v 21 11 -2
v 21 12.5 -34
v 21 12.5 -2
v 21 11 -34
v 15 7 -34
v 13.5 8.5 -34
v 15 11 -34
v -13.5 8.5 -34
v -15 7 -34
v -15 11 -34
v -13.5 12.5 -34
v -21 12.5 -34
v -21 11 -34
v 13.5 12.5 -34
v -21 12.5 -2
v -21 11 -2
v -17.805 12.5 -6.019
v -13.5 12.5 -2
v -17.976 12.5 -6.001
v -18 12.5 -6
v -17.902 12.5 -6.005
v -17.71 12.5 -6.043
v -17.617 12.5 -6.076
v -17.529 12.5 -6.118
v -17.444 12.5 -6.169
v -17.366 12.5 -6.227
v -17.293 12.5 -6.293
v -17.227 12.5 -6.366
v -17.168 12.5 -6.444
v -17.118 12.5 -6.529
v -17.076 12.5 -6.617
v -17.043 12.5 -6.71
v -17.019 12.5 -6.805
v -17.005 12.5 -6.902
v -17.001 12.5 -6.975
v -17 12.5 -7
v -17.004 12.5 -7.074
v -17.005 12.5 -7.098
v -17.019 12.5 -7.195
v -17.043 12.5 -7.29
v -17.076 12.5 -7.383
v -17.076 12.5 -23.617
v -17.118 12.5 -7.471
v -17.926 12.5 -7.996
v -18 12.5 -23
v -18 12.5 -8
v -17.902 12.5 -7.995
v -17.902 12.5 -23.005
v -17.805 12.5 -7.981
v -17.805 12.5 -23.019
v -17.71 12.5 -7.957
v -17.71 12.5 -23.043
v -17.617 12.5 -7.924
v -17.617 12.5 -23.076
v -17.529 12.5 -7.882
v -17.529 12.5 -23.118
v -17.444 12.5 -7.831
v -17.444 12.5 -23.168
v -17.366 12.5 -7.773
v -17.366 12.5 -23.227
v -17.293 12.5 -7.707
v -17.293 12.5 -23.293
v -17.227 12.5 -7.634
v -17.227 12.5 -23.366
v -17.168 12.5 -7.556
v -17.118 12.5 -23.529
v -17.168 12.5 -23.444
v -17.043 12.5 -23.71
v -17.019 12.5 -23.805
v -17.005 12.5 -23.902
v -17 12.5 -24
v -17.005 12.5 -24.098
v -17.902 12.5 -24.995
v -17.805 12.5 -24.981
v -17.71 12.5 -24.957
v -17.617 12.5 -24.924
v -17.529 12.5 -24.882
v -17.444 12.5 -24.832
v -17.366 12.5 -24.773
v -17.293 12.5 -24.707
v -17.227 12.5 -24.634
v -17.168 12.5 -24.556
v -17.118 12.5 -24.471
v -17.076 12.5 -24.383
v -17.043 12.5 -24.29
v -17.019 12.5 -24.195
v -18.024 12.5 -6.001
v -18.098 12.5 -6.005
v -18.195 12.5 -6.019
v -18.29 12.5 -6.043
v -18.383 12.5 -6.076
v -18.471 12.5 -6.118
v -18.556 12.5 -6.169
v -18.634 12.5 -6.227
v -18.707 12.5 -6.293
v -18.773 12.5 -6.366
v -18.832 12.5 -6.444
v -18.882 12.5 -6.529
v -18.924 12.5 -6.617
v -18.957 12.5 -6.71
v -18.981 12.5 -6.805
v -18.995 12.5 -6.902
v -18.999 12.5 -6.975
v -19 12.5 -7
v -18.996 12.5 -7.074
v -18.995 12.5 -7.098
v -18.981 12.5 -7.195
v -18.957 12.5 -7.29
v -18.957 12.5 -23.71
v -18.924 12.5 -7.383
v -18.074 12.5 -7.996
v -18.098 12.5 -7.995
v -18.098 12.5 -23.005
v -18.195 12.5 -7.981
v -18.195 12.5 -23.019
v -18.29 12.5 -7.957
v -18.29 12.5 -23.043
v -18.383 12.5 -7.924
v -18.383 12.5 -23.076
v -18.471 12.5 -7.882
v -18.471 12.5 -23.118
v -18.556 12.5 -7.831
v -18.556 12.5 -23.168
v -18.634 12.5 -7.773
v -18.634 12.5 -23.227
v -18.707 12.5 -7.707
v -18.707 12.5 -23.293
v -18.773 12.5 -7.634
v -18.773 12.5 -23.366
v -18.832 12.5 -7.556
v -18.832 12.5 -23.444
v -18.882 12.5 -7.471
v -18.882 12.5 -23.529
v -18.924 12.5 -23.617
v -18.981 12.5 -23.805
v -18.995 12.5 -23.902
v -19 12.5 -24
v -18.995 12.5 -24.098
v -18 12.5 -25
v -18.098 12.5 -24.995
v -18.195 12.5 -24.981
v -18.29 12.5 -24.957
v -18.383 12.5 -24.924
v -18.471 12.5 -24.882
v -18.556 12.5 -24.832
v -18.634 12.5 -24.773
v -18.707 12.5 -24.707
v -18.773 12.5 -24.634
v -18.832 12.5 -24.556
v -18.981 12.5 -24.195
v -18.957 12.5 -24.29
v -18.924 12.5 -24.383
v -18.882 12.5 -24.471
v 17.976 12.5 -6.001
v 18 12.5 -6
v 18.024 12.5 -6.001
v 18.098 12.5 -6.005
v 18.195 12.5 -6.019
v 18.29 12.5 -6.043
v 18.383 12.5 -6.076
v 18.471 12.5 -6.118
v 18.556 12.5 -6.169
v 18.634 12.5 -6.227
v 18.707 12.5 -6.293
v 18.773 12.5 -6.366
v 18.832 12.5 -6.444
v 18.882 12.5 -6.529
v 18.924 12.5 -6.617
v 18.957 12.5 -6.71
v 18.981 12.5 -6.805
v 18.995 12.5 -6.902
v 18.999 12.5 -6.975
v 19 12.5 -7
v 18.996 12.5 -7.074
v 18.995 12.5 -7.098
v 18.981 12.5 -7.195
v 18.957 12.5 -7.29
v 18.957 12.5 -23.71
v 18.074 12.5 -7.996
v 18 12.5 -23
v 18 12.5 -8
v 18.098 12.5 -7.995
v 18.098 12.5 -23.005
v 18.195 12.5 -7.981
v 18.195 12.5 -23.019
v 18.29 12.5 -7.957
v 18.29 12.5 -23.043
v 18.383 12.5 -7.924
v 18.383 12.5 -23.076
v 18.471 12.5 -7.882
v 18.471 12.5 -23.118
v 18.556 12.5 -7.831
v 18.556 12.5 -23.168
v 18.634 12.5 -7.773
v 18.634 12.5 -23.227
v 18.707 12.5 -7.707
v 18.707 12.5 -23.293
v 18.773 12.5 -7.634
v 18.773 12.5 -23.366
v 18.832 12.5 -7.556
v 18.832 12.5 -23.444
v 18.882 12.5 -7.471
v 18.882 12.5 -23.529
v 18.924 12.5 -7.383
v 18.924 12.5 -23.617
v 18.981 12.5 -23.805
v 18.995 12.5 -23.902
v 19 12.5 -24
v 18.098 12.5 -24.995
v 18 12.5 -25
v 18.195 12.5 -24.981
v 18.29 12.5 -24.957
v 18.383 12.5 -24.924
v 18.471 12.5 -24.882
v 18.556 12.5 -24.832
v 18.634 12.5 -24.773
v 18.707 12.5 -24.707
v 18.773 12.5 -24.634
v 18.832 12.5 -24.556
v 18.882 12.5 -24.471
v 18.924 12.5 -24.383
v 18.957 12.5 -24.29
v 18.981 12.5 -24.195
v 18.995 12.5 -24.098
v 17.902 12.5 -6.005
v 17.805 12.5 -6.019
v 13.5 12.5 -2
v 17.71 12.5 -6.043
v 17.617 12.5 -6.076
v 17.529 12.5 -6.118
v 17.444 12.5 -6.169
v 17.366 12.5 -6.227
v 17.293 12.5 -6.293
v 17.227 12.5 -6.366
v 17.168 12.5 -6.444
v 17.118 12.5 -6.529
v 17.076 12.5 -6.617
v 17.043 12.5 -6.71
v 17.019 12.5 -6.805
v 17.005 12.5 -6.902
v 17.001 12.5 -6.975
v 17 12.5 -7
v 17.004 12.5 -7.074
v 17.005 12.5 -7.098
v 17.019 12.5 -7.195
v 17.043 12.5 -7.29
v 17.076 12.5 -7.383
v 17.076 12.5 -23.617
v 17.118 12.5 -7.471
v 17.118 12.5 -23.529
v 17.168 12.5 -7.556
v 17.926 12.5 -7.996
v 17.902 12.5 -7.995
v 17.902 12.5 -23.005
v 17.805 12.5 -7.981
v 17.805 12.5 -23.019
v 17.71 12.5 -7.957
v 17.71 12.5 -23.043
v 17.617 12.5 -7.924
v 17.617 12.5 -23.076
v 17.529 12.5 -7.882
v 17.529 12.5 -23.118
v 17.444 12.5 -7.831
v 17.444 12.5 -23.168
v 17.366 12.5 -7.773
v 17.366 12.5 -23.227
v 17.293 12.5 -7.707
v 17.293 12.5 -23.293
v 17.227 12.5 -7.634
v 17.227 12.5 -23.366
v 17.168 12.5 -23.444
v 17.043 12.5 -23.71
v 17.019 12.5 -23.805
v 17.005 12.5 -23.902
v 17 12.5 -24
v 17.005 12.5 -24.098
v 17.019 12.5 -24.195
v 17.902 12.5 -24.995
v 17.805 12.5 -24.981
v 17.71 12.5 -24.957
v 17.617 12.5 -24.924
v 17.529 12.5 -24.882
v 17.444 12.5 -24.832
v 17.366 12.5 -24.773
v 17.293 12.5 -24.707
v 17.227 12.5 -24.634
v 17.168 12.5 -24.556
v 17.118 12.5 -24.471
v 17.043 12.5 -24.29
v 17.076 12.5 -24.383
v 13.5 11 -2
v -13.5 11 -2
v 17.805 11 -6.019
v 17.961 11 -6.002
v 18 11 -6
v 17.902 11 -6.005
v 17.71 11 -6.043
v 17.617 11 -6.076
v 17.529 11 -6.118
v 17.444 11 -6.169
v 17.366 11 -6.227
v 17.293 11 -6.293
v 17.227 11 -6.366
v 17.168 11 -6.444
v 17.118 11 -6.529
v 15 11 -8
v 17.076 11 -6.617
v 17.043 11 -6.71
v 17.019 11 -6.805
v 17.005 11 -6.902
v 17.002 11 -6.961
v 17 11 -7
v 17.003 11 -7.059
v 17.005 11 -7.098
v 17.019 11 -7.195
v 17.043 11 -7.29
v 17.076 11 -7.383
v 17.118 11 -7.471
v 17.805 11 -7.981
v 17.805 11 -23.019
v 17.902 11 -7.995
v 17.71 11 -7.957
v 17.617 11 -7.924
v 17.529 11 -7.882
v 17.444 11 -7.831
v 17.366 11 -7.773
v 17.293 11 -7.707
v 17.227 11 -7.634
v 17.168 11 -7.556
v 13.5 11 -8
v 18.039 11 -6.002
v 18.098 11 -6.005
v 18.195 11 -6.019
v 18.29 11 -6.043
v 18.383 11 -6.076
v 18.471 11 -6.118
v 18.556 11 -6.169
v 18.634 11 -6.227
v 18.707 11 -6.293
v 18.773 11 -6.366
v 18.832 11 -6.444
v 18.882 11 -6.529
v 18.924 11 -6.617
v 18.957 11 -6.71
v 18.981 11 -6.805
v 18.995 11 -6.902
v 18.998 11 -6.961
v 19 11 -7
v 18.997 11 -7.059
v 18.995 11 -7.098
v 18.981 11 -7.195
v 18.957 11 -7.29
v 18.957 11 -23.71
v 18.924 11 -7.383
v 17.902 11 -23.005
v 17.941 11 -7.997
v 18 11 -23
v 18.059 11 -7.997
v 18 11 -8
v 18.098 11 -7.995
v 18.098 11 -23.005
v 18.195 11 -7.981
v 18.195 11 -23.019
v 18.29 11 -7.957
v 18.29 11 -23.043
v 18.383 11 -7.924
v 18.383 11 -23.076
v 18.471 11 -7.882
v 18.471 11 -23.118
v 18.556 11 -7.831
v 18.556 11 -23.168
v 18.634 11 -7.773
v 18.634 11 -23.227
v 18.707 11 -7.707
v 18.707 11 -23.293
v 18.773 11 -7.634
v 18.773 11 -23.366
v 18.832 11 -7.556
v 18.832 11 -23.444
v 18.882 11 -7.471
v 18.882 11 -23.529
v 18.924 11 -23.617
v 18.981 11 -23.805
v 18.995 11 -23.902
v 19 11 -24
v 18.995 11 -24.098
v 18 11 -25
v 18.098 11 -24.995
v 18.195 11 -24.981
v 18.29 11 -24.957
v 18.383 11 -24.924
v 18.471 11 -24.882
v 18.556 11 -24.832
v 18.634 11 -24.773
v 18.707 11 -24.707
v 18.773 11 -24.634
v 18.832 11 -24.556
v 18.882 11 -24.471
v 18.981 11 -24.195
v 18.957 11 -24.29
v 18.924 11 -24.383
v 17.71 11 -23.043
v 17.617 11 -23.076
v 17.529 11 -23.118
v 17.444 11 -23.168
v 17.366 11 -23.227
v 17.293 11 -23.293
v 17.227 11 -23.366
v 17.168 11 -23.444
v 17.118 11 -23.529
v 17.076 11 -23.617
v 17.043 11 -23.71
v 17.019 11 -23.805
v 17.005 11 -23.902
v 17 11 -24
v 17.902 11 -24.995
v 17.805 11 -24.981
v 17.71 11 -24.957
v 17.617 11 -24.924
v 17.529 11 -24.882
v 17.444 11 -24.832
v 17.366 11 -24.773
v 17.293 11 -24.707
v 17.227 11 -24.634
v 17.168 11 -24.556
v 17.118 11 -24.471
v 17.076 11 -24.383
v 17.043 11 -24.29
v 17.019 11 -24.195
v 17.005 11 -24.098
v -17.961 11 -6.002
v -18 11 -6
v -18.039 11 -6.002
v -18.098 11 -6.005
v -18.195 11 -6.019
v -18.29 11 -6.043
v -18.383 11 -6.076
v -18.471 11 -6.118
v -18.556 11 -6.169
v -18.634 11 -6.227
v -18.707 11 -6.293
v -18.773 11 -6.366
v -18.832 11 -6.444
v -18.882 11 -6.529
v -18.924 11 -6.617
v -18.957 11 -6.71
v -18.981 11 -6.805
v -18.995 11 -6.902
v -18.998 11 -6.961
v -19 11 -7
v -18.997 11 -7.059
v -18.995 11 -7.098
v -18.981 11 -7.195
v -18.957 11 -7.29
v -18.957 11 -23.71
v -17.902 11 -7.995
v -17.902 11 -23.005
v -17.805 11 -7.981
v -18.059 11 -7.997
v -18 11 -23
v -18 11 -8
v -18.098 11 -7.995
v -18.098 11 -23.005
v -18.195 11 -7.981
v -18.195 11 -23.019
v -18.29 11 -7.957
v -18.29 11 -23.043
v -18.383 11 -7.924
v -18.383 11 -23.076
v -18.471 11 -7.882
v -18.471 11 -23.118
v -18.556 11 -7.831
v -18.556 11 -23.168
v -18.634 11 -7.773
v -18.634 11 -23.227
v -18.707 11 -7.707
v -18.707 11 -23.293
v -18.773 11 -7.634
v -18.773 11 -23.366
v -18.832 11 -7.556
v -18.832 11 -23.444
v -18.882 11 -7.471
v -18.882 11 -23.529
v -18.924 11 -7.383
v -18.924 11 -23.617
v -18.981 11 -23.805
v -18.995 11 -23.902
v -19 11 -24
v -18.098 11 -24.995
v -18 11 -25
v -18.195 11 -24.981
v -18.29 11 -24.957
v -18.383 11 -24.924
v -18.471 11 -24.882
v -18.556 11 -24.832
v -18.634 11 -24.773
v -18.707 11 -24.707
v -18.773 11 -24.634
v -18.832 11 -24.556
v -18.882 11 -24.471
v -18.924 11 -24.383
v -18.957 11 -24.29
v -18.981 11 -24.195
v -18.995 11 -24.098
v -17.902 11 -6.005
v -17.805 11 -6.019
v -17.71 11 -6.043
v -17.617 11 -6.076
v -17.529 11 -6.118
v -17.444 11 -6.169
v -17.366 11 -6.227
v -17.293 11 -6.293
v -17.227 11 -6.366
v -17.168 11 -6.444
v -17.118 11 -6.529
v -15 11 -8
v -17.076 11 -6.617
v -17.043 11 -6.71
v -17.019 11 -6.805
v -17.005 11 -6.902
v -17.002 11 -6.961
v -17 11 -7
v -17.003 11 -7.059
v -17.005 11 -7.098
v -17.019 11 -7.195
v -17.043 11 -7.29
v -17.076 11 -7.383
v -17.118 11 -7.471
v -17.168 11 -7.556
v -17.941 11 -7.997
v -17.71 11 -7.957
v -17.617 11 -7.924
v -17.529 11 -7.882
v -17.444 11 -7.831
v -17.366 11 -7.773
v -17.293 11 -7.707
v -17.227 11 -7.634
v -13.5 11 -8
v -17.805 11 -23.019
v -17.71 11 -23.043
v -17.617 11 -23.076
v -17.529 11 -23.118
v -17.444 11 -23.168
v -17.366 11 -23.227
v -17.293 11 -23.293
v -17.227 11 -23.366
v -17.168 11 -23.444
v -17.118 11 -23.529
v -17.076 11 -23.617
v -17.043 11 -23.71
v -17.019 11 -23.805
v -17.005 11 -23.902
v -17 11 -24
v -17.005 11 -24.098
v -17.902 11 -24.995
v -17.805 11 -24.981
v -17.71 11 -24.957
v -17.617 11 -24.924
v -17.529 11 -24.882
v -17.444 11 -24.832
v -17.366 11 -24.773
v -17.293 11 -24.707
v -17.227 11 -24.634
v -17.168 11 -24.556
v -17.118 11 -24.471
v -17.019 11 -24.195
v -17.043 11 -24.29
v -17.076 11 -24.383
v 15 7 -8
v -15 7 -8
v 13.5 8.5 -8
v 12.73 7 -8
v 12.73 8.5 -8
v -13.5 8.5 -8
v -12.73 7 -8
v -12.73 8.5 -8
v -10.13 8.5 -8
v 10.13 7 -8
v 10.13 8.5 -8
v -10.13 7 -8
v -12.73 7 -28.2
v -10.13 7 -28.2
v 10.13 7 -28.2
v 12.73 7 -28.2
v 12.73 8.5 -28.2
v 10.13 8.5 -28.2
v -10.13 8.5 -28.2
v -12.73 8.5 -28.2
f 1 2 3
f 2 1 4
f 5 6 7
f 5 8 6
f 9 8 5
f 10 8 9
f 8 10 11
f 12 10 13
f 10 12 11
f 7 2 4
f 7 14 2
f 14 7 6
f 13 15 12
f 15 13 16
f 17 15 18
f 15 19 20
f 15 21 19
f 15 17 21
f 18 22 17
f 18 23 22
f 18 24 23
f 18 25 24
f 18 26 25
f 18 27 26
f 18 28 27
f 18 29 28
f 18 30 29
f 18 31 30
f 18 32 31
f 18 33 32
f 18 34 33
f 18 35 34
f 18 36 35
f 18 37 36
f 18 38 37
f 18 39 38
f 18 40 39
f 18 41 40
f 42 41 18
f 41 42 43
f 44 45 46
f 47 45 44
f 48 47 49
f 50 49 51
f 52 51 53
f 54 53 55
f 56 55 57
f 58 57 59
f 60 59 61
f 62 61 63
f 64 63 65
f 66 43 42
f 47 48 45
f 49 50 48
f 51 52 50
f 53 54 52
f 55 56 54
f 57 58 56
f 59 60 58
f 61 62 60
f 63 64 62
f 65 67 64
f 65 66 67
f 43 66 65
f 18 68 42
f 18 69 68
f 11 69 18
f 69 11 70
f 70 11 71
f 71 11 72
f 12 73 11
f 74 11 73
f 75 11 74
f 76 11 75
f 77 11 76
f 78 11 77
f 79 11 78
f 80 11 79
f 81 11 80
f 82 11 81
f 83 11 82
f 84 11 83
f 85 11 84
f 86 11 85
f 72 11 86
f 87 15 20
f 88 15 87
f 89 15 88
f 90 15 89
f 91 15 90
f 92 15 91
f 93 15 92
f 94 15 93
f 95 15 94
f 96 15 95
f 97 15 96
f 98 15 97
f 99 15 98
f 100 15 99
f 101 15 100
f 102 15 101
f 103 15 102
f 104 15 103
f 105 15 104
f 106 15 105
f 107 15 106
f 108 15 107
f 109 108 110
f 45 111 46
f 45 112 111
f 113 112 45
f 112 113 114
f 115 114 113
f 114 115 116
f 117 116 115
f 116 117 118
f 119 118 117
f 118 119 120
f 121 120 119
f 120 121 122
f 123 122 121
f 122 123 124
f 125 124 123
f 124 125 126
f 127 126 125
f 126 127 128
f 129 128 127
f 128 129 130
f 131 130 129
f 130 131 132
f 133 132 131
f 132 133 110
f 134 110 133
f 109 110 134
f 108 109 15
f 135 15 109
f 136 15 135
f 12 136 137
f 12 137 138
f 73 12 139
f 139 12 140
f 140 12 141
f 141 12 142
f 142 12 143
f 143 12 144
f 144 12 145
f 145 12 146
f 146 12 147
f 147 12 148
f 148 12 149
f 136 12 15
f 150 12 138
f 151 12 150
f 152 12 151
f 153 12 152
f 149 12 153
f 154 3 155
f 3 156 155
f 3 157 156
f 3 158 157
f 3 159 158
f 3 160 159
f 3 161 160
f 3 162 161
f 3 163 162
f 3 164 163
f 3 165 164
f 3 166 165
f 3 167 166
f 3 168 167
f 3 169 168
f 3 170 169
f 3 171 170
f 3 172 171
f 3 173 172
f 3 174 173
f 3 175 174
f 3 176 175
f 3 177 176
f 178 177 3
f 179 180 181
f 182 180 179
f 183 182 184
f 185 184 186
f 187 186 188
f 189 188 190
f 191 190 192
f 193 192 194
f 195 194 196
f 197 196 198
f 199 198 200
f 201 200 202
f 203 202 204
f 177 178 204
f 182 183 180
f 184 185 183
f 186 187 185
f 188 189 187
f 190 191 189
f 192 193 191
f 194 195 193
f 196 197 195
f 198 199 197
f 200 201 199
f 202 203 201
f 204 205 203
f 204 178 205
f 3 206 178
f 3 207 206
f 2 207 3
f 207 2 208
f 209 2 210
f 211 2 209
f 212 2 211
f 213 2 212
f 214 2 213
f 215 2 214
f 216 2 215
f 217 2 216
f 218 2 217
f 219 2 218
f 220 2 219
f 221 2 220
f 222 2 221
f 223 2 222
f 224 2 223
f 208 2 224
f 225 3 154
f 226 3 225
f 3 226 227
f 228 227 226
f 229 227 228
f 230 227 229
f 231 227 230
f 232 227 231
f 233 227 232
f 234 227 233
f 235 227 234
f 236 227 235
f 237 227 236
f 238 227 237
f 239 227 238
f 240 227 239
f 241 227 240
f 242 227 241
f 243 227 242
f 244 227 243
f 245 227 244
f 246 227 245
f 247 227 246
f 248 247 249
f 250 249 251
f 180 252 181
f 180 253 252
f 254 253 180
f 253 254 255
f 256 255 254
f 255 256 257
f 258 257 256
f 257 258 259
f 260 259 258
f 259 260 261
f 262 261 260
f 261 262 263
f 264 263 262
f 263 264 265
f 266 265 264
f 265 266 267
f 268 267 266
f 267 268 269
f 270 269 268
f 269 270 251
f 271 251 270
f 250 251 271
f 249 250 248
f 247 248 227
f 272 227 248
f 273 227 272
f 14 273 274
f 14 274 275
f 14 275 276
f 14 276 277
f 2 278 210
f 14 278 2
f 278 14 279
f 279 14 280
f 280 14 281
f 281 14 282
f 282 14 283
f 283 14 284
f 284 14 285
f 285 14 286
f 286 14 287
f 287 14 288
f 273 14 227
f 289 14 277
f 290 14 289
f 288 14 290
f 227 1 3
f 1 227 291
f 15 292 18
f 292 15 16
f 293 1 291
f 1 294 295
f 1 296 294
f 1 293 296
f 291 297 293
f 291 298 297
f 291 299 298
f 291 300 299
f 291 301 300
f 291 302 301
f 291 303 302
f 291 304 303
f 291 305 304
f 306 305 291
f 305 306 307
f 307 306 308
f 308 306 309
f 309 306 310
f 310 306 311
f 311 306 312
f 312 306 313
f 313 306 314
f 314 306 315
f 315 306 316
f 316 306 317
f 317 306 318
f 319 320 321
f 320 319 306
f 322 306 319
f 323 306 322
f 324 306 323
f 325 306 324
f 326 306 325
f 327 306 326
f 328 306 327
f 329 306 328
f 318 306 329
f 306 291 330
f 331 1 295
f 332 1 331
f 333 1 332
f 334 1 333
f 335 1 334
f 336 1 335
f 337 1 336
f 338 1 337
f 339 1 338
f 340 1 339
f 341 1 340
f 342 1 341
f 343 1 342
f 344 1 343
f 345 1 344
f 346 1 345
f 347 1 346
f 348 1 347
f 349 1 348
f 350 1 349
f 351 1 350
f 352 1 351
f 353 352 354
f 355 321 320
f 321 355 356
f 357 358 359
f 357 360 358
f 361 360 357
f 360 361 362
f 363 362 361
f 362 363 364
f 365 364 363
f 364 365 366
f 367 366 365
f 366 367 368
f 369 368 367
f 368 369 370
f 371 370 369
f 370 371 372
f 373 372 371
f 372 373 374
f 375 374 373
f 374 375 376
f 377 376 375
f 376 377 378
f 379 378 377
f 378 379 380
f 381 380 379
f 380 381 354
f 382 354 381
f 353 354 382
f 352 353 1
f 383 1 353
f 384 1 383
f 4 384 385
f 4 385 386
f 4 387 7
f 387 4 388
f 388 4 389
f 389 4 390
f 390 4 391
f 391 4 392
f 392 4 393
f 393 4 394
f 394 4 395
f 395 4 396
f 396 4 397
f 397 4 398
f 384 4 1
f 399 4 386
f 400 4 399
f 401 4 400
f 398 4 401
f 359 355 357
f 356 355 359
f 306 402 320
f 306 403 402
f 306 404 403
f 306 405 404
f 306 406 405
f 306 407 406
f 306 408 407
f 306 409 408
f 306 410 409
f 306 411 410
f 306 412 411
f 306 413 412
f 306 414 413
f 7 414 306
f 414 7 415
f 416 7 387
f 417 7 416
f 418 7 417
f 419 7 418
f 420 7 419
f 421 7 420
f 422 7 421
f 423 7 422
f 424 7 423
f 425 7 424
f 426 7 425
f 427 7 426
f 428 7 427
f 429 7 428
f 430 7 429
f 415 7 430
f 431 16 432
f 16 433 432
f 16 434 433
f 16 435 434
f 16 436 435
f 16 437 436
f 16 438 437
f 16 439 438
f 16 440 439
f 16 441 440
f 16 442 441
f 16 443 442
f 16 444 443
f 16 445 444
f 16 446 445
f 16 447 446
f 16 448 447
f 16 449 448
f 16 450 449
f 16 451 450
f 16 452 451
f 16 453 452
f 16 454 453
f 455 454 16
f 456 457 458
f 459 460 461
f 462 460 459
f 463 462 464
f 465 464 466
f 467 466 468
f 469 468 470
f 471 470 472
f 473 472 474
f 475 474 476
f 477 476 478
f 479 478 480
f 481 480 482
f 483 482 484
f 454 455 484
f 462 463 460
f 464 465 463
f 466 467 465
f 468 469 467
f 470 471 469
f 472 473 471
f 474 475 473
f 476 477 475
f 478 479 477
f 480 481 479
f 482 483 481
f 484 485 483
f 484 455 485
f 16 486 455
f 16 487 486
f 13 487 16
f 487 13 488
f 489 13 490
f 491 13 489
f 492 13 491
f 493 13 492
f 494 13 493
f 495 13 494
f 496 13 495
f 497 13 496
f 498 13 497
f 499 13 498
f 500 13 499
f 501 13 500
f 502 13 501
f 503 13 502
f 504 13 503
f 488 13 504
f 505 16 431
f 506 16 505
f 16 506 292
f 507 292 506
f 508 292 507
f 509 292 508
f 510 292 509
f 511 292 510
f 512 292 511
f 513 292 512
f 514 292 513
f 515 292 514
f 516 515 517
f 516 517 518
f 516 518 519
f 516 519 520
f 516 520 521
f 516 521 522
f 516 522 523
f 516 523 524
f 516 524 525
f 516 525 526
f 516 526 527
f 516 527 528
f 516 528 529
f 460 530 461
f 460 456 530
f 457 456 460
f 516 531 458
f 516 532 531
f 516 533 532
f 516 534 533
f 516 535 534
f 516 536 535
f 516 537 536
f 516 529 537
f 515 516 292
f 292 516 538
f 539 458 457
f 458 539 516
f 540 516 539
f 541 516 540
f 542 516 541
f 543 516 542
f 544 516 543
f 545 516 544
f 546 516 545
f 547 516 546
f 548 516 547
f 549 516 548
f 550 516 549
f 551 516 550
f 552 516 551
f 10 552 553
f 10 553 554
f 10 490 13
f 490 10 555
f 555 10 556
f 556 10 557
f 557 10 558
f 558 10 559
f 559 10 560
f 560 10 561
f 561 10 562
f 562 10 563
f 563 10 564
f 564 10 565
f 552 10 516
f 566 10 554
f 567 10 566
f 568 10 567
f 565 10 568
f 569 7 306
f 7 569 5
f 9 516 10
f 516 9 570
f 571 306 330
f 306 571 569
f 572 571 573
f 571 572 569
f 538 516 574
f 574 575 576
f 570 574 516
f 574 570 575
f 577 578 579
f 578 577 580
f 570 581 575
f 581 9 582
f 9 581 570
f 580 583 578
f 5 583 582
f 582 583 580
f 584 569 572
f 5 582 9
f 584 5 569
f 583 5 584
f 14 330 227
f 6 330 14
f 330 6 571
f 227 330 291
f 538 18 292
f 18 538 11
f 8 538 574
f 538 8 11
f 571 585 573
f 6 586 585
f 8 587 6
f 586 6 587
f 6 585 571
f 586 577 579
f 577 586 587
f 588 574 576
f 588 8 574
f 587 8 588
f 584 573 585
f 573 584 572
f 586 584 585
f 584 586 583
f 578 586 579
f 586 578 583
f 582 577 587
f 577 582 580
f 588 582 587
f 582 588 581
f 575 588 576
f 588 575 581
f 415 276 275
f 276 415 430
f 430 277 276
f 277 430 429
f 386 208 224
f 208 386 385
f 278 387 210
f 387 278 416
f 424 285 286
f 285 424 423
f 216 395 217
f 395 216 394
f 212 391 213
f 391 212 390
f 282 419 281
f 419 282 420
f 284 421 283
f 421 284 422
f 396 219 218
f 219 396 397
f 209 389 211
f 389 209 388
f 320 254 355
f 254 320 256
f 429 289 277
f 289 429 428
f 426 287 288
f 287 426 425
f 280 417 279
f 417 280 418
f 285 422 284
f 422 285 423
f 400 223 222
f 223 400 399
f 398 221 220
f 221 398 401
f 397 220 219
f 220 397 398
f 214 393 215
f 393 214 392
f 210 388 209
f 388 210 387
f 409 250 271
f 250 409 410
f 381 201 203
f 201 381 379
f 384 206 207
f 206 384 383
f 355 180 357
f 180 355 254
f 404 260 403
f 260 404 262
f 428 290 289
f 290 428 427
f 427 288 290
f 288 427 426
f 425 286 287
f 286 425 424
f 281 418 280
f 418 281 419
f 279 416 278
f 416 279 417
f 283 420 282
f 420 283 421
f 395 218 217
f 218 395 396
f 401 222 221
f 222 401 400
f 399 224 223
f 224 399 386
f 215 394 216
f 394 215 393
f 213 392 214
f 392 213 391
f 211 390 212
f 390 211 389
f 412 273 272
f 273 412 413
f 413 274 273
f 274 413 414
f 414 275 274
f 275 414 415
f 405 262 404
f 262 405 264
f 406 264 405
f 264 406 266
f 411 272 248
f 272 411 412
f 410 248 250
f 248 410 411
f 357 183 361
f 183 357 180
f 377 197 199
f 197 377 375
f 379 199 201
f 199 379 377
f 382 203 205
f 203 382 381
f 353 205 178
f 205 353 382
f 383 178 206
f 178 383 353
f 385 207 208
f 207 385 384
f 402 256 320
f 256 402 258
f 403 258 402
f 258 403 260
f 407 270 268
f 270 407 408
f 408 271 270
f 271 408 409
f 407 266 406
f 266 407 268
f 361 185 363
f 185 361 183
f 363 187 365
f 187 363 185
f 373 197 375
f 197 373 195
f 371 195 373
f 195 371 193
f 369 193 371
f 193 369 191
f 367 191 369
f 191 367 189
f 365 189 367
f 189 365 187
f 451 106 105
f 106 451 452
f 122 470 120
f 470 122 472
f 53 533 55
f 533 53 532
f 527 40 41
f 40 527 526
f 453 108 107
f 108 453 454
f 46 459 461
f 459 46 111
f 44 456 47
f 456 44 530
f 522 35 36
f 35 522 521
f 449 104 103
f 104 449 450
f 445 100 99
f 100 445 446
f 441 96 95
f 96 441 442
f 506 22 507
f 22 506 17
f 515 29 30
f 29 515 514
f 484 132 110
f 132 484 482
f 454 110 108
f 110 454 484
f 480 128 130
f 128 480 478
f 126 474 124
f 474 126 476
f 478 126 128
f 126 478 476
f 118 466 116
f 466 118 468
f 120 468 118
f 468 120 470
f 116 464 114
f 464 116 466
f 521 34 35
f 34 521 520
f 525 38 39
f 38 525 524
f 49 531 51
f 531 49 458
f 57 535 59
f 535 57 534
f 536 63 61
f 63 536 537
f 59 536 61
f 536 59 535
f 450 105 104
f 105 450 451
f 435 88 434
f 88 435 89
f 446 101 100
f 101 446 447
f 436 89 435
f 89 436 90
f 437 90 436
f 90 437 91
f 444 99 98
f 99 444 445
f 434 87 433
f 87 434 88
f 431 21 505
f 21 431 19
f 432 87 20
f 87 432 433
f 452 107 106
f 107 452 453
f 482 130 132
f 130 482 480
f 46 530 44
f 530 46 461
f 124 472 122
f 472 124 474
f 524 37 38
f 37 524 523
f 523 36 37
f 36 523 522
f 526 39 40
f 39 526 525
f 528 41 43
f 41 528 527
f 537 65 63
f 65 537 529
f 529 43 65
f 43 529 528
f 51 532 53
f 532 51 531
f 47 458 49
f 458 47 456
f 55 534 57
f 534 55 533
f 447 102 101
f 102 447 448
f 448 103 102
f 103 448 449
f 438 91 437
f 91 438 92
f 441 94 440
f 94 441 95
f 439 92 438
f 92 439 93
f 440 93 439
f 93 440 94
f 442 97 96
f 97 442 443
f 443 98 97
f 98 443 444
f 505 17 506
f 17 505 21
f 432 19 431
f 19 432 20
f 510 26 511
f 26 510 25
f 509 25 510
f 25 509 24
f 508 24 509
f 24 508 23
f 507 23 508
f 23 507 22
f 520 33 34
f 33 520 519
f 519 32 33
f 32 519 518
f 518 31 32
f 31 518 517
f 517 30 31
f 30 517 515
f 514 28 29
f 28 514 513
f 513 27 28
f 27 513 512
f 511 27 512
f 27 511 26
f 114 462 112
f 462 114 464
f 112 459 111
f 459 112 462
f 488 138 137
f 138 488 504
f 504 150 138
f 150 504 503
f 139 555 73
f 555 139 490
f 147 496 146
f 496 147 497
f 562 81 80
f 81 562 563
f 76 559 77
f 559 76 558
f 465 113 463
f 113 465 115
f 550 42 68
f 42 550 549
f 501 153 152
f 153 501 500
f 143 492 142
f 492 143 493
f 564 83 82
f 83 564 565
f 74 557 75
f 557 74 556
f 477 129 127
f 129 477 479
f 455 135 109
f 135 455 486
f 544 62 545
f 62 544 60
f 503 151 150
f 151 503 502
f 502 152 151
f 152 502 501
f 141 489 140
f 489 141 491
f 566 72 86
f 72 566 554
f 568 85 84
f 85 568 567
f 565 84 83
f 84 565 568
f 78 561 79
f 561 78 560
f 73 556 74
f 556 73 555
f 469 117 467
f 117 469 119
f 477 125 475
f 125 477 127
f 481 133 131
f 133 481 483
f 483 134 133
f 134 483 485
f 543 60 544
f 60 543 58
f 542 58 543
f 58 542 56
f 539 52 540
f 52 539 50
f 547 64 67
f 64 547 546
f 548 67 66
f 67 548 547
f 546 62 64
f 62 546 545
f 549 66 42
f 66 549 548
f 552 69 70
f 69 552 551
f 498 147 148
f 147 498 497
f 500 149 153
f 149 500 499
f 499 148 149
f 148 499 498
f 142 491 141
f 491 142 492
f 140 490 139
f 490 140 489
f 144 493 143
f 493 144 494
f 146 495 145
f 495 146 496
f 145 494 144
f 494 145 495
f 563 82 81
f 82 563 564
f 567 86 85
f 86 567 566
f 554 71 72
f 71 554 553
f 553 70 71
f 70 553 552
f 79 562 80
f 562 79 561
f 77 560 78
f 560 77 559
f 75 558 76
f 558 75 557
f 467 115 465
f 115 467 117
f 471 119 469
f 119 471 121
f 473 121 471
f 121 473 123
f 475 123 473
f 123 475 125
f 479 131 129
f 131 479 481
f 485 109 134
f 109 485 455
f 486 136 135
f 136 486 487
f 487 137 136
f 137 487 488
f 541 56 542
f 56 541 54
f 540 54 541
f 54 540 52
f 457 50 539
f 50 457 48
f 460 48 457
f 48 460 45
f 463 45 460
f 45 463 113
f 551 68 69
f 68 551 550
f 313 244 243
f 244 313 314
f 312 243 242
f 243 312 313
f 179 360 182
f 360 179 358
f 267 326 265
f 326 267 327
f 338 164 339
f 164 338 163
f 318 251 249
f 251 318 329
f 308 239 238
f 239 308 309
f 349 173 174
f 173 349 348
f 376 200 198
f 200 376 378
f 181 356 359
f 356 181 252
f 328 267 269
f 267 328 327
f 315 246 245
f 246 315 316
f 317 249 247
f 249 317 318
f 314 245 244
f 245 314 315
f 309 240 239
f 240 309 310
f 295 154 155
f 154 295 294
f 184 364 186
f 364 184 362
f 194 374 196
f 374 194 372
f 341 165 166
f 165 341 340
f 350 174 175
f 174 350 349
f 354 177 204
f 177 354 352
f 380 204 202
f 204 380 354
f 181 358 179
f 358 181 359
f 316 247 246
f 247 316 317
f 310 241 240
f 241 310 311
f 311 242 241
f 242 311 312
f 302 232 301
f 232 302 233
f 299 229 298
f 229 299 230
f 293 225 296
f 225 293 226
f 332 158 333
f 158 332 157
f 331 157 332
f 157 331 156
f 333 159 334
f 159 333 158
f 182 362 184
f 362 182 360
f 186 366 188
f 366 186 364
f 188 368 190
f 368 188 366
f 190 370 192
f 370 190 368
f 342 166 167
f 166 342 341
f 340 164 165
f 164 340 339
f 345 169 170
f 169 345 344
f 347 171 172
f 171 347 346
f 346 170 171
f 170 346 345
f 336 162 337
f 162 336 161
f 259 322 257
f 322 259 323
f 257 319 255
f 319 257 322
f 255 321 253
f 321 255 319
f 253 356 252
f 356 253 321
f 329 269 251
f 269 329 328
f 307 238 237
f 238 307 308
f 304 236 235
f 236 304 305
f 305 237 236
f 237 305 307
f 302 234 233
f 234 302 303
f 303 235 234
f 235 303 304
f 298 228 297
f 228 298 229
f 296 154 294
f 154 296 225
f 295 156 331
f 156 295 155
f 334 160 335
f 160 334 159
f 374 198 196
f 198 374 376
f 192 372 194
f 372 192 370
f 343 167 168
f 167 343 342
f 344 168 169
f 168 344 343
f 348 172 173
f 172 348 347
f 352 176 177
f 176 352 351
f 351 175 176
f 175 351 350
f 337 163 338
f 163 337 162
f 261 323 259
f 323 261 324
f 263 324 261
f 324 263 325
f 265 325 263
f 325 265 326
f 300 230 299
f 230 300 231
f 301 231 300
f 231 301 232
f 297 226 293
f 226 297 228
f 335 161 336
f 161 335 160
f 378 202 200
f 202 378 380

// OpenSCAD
// file: config.scad
//Parameters for servo_lx16a
$fn = 24;
//x,y,z => l,w,h


servo_l         = 45.20; 
servo_w         = 24.70; 
body_h          = 32;

servo_h         = 35;

hub_offset      = 10.10;

rad = 2;


w_between_holes = 20.5;
l_between_top_holes = 20.7;
l_between_bottom_holes = 24.45;
top_hole_l_offset = 6.1;
bottom_hole_l_offset = 2.35;

hole_dia = 1.6;
attach_screw_l = 5;

top_hub_carve_h = 2.6;
bottom_hub_carve_h = 3.4;

top_attach_carve_h = 1.1;
bottom_attach_carve_h = 1.9;

hub_carve_r = 10.8;

hub_r = 10.1;

w_between_ridges = 19.5;

top_horn_h = 3.20;
bottom_horn_h = 3.85;

top_horn_r = 3.15;
bottom_horn_r = 3;



hub_h           = 4;
small_hub_r     = 6.15/2;  
horn_r          = 4.66/2;
horn_h          = 3;

wire_l          = 4;
wire_w          = 1.5;
wire_h          = 1;
wire_place      = 4.8;
// file: electronics.scad
$fn=100;

//on_off_switch();

//pi_zero();

//translate ([0,100,0])
//pca9685();

//dc_dc();

//pi_camera();



module header(pins, rows){
  color("darkgrey") cube([2.54*pins,2.54*rows,1.27]);
  
  color("gold")
  for(x=[0:pins-1],y=[0:rows-1])
    translate([x*2.54+(1.27+.6)/2,y*2.54+(1.27+.6)/2,-3.5]) cube([0.6,0.6,11.5]);
}


module pi_zero(){
    // PCB
    color("limegreen") difference(){
        hull(){
            translate([-(65-6)/2,-(30-6)/2,0]) cylinder(r=3, h=1.4 );
            translate([-(65-6)/2, (30-6)/2,0]) cylinder(r=3, h=1.4 );
            translate([ (65-6)/2,-(30-6)/2,0]) cylinder(r=3, h=1.4 );
            translate([ (65-6)/2, (30-6)/2,0]) cylinder(r=3, h=1.4 );
        }
        
        translate([-65/2+3.5,-30/2+3.5,-1]) cylinder(d=2.75, h=3);
        translate([-65/2+3.5, 30/2-3.5,-1]) cylinder(d=2.75, h=3);
        translate([65/2-3.5,-30/2+3.5,-1]) cylinder(d=2.75, h=3);
        translate([65/2-3.5, 30/2-3.5,-1]) cylinder(d=2.75, h=3);
    }
    
    // Header
    translate([-10*2.54,30/2-2.54-3.5,1.4])
    header(20,2);
    
    translate([-65/2,-30/2,1.4]){
        color("silver"){
        
            // micro USB
            translate([41-8/2,-1.5,0]) cube([8,6,2.6]);
            translate([54-8/2,-1.5,0]) cube([8,6,2.6]);        
            
            // HDMI
            translate([6.9,-1.5,0]) cube([13,7,3]);
        }
    
        color("darkgrey"){
        
            // Camera
            translate([64-4/2,7.1,0]) cube([4,16,2.5]);
        }
    
        // Micro SD Card
        color("silver") translate([0,8.6,-0]) cube([13,14,1.5]);    
        color("darkgrey") translate([-2.4,10.1,0]) cube([2.4,11,1]);
    }
}



module pca9685(withHeader=true){  
  
    // PCB
    color("limegreen") difference(){
        translate([0,0,0]) hull(){
            translate([-(62.5-6)/2,-(25.4-6)/2,0]) cylinder(r=3, h=1.4 );
            translate([-(62.5-6)/2, (25.4-6)/2,0]) cylinder(r=3, h=1.4 );
            translate([ (62.5-6)/2,-(25.4-6)/2,0]) cylinder(r=3, h=1.4 );
            translate([ (62.5-6)/2, (25.4-6)/2,0]) cylinder(r=3, h=1.4 );
        }
        
        translate([-55.9/2,-18.8/2,-1]) cylinder(d=2.75, h=3);
        translate([-55.9/2, 18.8/2,-1]) cylinder(d=2.75, h=3);
        translate([55.9/2,-18.8/2,-1]) cylinder(d=2.75, h=3);
        translate([55.9/2, 18.8/2,-1]) cylinder(d=2.75, h=3);
    } 
    
    
    // capacitor
    color("silver")
    translate([-(62.5/2)+17.1,(25.4-8.3)/2,1.4])
    cylinder(d=8.3, h=12.7);
    
    //power connector
    color("blue")
    translate([-(62.5/2)+25.1+2.54*2,(25.4-8.3)/2,1.4])
    cube([2.54*2,4,8]);
    
    // Header top
    translate([-(62.5/2)+5.65,-25.4/2,1.4])
    header(4,3);
    
    translate([2.25,-25.4/2,1.4])
    header(4,3);
    
    translate([-2.25-2.54*4,-25.4/2,1.4])
    header(4,3);
    
    translate([62.5/2-5.65-2.54*4,-25.4/2,1.4])
    header(4,3);
    
    translate([62.5/2,-25.4/2+5.08,1.4])
    rotate([0,0,90])
    header(6,1);
    
    translate([-62.5/2+2.54,-25.4/2+5.08,1.4])
    rotate([0,0,90])
    header(6,1);

  
}

module dc_dc(){
    
    // PCB
    color("limegreen") difference(){
        translate([0,0,0]) hull(){
            translate([-(24.5-6)/2,-(48-6)/2,0]) cylinder(r=3, h=1.4 );
            translate([-(24.5-6)/2, (48-6)/2,0]) cylinder(r=3, h=1.4 );
            translate([ (24.5-6)/2,-(48-6)/2,0]) cylinder(r=3, h=1.4 );
            translate([ (24.5-6)/2, (48-6)/2,0]) cylinder(r=3, h=1.4 );
        }
      
        translate([0,0,-1]) {
            
            //translate([-17/2,-35/2,0])
            //cylinder(d=3.15, h=2.5);
            
            translate([-17/2,35/2, 0])
            cylinder(d=3.15, h=2.5);
            
            translate([17/2,-35/2, 0])
            cylinder(d=3.15, h=2.5);
            
            //translate([17/2,35/2, 0])
            //cylinder(d=3.15, h=2.5); 
          
        }


    } 
    
    
    // capacitors
    color("darkblue")
    translate([-(24.5/2)+12.1,(48-8)/2,1.4])
    cylinder(d=8, h=10);
    
    color("darkblue")
    translate([-(24.5/2)+12.1,-(48-8)/2,1.4])
    cylinder(d=8, h=10);
    
    //toroid
    
    difference(){
        
        color("orange")
        translate([(24.5/2)-22.1+9,(48-30)/2,1.4])
        cylinder(d=12, h=7.6);
        
        color("orange")
        translate([(24.5/2)-22.1+9,(48-30)/2,0.5])
        cylinder(d=6, h=11);

        
    }
    
    
    //potentiometer
    color("blue")
    translate([24.5/2-2,-48/2+9,1.4])
    rotate([0,0,90])
    cube([5,10,11]);
    
    
    //IC
    color("black")
    translate([24.5/2-8,-48/2+15,1.4])
    rotate([0,0,90])
    cube([11,11,5]);
    
    
}


module on_off_switch(){
    
    union(){
        
        color("silver")
        translate([-8/2, -4/2, 0])
        cube([8, 4, 3.8]);
        
        color("black")
        translate([-1.5/2, -1.5/2, 3.8])
        cube([1.5, 1.5, 3]);
        
        color("silver")
        translate([-0.5/2, -0.5/2, -3.2])
        cube([0.5, 0.5, 3.2]);
        
        color("silver")
        translate([-0.5/2-2.5, -0.5/2, -3.2])
        cube([0.5, 0.5, 3.2]);
        
        color("silver")
        translate([-0.5/2+2.5, -0.5/2, -3.2])
        cube([0.5, 0.5, 3.2]);
        
        
        
        
    }
    
}


module pi_camera(){
    difference(){
        union(){
            color("limegreen")
            translate([-25.5/2, -24.5/2, 0])
            cube([25.5, 24.5, 0.9]);
            
            
            //camera sensor
            color("darkgrey")
            translate([-8.5/2, -8.5/2+2.4, 0.9])
            cube([8.5, 8.5, 3.5]);
            
            color("darkgrey")
            translate([0, 2.4, 0.9+3.5])
            cylinder(d=8, h=0.75, $fn=32);
        
            color("darkgrey")
            translate([0, 2.4, 0.9+3.5+0.75])
            cylinder(d=6, h=0.75, $fn=32);
            
            color("darkgrey")
            translate([0, 2.4, 0.9+3.5+0.75+0.75])
            cylinder(d1=2, d2=5, h=2, $fn=32);
            
            //sensor connector
            color("orange")
            translate([-8.5/2, -8.5/2+2.4-10.5, 0.9])
            cube([8.5, 10.5, 2.5]);
            
            //led
            color("white")
            translate([-20/2, -8.5/2+2.4-7, 0.9])
            cube([20, 3, 1]);            
            
            
            //connector
            color("white")
            translate([-20.8/2, -5.5+24/2, -2.4])
            cube([20.8, 5.5, 2.4]);
            
            
    
        }
          
        translate([-21/2,-20/2,-1]) cylinder(d=2.1, h=3);
        translate([-21/2, 20/2-7.5,-1]) cylinder(d=2.1, h=3);
        translate([21/2,-20/2,-1]) cylinder(d=2.1, h=3);
        translate([21/2, 20/2-7.5,-1]) cylinder(d=2.1, h=3);
    }
    
    
}
// file: servo_5g.scad
include <Config.scad>

servo_5g();


$fn = 24;
//x,y,z => l,w,h


module servo_5g() {
  
    translate([-servo5_l/2, -servo5_w/2, -body5_h/2-hub5_h/2-horn5_h/2]) {
    
        color("white") 
        translate([servo5_l/2,servo5_l/2,body5_h+hub5_h])
        cylinder(r=horn5_r,h=horn5_h);
        
        color("deepSkyBlue",.7) //deepSkyBlue
        union() {
            cube([servo5_l,servo5_w,body5_h]);
            translate([servo5_l/2,servo5_l/2,body5_h])
            cylinder(r=servo5_l/2,h=hub5_h);
            translate([servo5_l/2,servo5_l/2+3.7,body5_h])
            cylinder(r=small_hub5_r,h=hub5_h);
            
        }
    }
}
// file: servo_12g.scad
include <config.scad>


servo_12g();


$fn = 24;
//x,y,z => l,w,h


module servo_12g() {
  
    translate([-servo_l/2, -servo_w/2, -body_h/2-hub_h/2-horn_h/2]) {
    
        color("white") 
        translate([servo_l/2,servo_l/2,body_h+hub_h])
        cylinder(r=horn_r,h=horn_h);
        
        color("deepSkyBlue",.7) //deepSkyBlue
        union() {
            cube([servo_l,servo_w,body_h]);
            translate([servo_l/2,servo_l/2,body_h])
            cylinder(r=servo_l/2,h=hub_h);
            translate([servo_l/2,servo_l/2+6.30,body_h])
            cylinder(r=small_hub_r,h=hub_h);
            
        }
    }
}

module roundedRect(size, radius)
{
x = size[0];
y = size[1];
z = size[2];

translate([x/2+radius/2, y/2+radius/2, 0]){
linear_extrude(height=z)
hull()
{
// place 4 circles in the corners, with the given radius
translate([(-x/2)+(radius/2), (-y/2)+(radius/2), 0])
circle(r=radius);

translate([(x/2)-(radius/2), (-y/2)+(radius/2), 0])
circle(r=radius);

translate([(-x/2)+(radius/2), (y/2)-(radius/2), 0])
circle(r=radius);

translate([(x/2)-(radius/2), (y/2)-(radius/2), 0])
circle(r=radius);
}
}
}
// file: Config.scad
//Parameters for 12g servo
$fn = 24;
//x,y,z => l,w,h

tap_r = 0.85;
hole_r = 1.0;

servo_l         = 12;  // was 12
servo_w         = 24;  // was 23
body_h          = 20.80;

servo_h         = 27; //not used in code was 27

wing_w          = 4.5;
wing_h          = 2.33;
wing_place      = 16.3;   
hole_offset     = 2.2;    //not checked
mount_hole_r    = 2/2;
mount_slot      = 1;

servo_ww        = servo_w+wing_w*2; // not used in code but is handy number

hub_h           = 4;
small_hub_r     = 6.15/2;  
horn_r          = 4.66/2;
horn_h          = 3;

wire_l          = 4;
wire_w          = 1.5;
wire_h          = 1;
wire_place      = 4.8;

servo_full_w    = servo_w+wing_w*2;

rad = 2;




//Parameters for 5g servo

servo5_l         = 8.6; 
servo5_w         = 18.6; 
body5_h          = 14.65;


hub5_h = 2.15;
small_hub5_r = 4.6/2;  
horn5_r = 4.66/2;
horn5_h = 3;

servo5_h         = body5_h+hub5_h+horn5_h;

mount_x = servo5_l + 2;
mount_y = servo5_w + 2;
mount_round = 1;
servo_tol = 0.2;
servo5_x     = servo5_l + servo_tol*2; //~12
servo5_y     = servo5_w + servo_tol*8; //~23
// main file
include <Config.scad>
use <servo_12g.scad>
use <servo_5g.scad>
use <electronics.scad>


rotate([0, 180, 0])
Citro6_25();


module Citro6_25(){
    
        
difference(){
                
      union(){
               
          translate([0,11.75, 18])
          cube([42,1.5,32], center=true);
        
          translate([0,9.5, 21])
          cube([30,5,26], center=true);
                   
       }
        
        //tray cavity
        translate([0,16, 18.5])
        cube([27,15,34], center=true);
        
        //translate([-22.5,18.5, 15.5])
        //cube([5,15,31], center=true);
        
        //translate([22.5,18.5, 15.5])
        //cube([5,15,31], center=true);
        
        //translate([0,20.5, 15.5])
        //cube([30,24,31], center=true);
        
       //tray
       
      
        
        //slots for pins
        translate([-11.43,13.5, 18.0])
        cube([2.6,15,20.4], center=true);
        
        translate([11.43,13.5, 18.0])
        cube([2.6,15,20.4], center=true);
        
        //translate([0,30, 21])
        //rotate([35, 0, 0])
        //cube([70,24,28], center=true);
        
        //translate([0,16.5, 8])
        //cube([75,7.5,9], center=true);
        
        
        //screw holes for dc-dc converter
        
        translate([-36/2, 10, 24])
        rotate([90, 0, 0])
        cylinder(d=2, h=10, center=true, $fn=64);
        
        translate([36/2, 10, 7])
        rotate([90, 0, 0])
        cylinder(d=2, h=10, center=true, $fn=64);
        
        translate([36/2, 10, 24])
        rotate([90, 0, 0])
        cylinder(d=2, h=10, center=true, $fn=64);
        
        translate([-36/2, 10, 7])
        rotate([90, 0, 0])
        cylinder(d=2, h=10, center=true, $fn=64);
        
    }
    
}
